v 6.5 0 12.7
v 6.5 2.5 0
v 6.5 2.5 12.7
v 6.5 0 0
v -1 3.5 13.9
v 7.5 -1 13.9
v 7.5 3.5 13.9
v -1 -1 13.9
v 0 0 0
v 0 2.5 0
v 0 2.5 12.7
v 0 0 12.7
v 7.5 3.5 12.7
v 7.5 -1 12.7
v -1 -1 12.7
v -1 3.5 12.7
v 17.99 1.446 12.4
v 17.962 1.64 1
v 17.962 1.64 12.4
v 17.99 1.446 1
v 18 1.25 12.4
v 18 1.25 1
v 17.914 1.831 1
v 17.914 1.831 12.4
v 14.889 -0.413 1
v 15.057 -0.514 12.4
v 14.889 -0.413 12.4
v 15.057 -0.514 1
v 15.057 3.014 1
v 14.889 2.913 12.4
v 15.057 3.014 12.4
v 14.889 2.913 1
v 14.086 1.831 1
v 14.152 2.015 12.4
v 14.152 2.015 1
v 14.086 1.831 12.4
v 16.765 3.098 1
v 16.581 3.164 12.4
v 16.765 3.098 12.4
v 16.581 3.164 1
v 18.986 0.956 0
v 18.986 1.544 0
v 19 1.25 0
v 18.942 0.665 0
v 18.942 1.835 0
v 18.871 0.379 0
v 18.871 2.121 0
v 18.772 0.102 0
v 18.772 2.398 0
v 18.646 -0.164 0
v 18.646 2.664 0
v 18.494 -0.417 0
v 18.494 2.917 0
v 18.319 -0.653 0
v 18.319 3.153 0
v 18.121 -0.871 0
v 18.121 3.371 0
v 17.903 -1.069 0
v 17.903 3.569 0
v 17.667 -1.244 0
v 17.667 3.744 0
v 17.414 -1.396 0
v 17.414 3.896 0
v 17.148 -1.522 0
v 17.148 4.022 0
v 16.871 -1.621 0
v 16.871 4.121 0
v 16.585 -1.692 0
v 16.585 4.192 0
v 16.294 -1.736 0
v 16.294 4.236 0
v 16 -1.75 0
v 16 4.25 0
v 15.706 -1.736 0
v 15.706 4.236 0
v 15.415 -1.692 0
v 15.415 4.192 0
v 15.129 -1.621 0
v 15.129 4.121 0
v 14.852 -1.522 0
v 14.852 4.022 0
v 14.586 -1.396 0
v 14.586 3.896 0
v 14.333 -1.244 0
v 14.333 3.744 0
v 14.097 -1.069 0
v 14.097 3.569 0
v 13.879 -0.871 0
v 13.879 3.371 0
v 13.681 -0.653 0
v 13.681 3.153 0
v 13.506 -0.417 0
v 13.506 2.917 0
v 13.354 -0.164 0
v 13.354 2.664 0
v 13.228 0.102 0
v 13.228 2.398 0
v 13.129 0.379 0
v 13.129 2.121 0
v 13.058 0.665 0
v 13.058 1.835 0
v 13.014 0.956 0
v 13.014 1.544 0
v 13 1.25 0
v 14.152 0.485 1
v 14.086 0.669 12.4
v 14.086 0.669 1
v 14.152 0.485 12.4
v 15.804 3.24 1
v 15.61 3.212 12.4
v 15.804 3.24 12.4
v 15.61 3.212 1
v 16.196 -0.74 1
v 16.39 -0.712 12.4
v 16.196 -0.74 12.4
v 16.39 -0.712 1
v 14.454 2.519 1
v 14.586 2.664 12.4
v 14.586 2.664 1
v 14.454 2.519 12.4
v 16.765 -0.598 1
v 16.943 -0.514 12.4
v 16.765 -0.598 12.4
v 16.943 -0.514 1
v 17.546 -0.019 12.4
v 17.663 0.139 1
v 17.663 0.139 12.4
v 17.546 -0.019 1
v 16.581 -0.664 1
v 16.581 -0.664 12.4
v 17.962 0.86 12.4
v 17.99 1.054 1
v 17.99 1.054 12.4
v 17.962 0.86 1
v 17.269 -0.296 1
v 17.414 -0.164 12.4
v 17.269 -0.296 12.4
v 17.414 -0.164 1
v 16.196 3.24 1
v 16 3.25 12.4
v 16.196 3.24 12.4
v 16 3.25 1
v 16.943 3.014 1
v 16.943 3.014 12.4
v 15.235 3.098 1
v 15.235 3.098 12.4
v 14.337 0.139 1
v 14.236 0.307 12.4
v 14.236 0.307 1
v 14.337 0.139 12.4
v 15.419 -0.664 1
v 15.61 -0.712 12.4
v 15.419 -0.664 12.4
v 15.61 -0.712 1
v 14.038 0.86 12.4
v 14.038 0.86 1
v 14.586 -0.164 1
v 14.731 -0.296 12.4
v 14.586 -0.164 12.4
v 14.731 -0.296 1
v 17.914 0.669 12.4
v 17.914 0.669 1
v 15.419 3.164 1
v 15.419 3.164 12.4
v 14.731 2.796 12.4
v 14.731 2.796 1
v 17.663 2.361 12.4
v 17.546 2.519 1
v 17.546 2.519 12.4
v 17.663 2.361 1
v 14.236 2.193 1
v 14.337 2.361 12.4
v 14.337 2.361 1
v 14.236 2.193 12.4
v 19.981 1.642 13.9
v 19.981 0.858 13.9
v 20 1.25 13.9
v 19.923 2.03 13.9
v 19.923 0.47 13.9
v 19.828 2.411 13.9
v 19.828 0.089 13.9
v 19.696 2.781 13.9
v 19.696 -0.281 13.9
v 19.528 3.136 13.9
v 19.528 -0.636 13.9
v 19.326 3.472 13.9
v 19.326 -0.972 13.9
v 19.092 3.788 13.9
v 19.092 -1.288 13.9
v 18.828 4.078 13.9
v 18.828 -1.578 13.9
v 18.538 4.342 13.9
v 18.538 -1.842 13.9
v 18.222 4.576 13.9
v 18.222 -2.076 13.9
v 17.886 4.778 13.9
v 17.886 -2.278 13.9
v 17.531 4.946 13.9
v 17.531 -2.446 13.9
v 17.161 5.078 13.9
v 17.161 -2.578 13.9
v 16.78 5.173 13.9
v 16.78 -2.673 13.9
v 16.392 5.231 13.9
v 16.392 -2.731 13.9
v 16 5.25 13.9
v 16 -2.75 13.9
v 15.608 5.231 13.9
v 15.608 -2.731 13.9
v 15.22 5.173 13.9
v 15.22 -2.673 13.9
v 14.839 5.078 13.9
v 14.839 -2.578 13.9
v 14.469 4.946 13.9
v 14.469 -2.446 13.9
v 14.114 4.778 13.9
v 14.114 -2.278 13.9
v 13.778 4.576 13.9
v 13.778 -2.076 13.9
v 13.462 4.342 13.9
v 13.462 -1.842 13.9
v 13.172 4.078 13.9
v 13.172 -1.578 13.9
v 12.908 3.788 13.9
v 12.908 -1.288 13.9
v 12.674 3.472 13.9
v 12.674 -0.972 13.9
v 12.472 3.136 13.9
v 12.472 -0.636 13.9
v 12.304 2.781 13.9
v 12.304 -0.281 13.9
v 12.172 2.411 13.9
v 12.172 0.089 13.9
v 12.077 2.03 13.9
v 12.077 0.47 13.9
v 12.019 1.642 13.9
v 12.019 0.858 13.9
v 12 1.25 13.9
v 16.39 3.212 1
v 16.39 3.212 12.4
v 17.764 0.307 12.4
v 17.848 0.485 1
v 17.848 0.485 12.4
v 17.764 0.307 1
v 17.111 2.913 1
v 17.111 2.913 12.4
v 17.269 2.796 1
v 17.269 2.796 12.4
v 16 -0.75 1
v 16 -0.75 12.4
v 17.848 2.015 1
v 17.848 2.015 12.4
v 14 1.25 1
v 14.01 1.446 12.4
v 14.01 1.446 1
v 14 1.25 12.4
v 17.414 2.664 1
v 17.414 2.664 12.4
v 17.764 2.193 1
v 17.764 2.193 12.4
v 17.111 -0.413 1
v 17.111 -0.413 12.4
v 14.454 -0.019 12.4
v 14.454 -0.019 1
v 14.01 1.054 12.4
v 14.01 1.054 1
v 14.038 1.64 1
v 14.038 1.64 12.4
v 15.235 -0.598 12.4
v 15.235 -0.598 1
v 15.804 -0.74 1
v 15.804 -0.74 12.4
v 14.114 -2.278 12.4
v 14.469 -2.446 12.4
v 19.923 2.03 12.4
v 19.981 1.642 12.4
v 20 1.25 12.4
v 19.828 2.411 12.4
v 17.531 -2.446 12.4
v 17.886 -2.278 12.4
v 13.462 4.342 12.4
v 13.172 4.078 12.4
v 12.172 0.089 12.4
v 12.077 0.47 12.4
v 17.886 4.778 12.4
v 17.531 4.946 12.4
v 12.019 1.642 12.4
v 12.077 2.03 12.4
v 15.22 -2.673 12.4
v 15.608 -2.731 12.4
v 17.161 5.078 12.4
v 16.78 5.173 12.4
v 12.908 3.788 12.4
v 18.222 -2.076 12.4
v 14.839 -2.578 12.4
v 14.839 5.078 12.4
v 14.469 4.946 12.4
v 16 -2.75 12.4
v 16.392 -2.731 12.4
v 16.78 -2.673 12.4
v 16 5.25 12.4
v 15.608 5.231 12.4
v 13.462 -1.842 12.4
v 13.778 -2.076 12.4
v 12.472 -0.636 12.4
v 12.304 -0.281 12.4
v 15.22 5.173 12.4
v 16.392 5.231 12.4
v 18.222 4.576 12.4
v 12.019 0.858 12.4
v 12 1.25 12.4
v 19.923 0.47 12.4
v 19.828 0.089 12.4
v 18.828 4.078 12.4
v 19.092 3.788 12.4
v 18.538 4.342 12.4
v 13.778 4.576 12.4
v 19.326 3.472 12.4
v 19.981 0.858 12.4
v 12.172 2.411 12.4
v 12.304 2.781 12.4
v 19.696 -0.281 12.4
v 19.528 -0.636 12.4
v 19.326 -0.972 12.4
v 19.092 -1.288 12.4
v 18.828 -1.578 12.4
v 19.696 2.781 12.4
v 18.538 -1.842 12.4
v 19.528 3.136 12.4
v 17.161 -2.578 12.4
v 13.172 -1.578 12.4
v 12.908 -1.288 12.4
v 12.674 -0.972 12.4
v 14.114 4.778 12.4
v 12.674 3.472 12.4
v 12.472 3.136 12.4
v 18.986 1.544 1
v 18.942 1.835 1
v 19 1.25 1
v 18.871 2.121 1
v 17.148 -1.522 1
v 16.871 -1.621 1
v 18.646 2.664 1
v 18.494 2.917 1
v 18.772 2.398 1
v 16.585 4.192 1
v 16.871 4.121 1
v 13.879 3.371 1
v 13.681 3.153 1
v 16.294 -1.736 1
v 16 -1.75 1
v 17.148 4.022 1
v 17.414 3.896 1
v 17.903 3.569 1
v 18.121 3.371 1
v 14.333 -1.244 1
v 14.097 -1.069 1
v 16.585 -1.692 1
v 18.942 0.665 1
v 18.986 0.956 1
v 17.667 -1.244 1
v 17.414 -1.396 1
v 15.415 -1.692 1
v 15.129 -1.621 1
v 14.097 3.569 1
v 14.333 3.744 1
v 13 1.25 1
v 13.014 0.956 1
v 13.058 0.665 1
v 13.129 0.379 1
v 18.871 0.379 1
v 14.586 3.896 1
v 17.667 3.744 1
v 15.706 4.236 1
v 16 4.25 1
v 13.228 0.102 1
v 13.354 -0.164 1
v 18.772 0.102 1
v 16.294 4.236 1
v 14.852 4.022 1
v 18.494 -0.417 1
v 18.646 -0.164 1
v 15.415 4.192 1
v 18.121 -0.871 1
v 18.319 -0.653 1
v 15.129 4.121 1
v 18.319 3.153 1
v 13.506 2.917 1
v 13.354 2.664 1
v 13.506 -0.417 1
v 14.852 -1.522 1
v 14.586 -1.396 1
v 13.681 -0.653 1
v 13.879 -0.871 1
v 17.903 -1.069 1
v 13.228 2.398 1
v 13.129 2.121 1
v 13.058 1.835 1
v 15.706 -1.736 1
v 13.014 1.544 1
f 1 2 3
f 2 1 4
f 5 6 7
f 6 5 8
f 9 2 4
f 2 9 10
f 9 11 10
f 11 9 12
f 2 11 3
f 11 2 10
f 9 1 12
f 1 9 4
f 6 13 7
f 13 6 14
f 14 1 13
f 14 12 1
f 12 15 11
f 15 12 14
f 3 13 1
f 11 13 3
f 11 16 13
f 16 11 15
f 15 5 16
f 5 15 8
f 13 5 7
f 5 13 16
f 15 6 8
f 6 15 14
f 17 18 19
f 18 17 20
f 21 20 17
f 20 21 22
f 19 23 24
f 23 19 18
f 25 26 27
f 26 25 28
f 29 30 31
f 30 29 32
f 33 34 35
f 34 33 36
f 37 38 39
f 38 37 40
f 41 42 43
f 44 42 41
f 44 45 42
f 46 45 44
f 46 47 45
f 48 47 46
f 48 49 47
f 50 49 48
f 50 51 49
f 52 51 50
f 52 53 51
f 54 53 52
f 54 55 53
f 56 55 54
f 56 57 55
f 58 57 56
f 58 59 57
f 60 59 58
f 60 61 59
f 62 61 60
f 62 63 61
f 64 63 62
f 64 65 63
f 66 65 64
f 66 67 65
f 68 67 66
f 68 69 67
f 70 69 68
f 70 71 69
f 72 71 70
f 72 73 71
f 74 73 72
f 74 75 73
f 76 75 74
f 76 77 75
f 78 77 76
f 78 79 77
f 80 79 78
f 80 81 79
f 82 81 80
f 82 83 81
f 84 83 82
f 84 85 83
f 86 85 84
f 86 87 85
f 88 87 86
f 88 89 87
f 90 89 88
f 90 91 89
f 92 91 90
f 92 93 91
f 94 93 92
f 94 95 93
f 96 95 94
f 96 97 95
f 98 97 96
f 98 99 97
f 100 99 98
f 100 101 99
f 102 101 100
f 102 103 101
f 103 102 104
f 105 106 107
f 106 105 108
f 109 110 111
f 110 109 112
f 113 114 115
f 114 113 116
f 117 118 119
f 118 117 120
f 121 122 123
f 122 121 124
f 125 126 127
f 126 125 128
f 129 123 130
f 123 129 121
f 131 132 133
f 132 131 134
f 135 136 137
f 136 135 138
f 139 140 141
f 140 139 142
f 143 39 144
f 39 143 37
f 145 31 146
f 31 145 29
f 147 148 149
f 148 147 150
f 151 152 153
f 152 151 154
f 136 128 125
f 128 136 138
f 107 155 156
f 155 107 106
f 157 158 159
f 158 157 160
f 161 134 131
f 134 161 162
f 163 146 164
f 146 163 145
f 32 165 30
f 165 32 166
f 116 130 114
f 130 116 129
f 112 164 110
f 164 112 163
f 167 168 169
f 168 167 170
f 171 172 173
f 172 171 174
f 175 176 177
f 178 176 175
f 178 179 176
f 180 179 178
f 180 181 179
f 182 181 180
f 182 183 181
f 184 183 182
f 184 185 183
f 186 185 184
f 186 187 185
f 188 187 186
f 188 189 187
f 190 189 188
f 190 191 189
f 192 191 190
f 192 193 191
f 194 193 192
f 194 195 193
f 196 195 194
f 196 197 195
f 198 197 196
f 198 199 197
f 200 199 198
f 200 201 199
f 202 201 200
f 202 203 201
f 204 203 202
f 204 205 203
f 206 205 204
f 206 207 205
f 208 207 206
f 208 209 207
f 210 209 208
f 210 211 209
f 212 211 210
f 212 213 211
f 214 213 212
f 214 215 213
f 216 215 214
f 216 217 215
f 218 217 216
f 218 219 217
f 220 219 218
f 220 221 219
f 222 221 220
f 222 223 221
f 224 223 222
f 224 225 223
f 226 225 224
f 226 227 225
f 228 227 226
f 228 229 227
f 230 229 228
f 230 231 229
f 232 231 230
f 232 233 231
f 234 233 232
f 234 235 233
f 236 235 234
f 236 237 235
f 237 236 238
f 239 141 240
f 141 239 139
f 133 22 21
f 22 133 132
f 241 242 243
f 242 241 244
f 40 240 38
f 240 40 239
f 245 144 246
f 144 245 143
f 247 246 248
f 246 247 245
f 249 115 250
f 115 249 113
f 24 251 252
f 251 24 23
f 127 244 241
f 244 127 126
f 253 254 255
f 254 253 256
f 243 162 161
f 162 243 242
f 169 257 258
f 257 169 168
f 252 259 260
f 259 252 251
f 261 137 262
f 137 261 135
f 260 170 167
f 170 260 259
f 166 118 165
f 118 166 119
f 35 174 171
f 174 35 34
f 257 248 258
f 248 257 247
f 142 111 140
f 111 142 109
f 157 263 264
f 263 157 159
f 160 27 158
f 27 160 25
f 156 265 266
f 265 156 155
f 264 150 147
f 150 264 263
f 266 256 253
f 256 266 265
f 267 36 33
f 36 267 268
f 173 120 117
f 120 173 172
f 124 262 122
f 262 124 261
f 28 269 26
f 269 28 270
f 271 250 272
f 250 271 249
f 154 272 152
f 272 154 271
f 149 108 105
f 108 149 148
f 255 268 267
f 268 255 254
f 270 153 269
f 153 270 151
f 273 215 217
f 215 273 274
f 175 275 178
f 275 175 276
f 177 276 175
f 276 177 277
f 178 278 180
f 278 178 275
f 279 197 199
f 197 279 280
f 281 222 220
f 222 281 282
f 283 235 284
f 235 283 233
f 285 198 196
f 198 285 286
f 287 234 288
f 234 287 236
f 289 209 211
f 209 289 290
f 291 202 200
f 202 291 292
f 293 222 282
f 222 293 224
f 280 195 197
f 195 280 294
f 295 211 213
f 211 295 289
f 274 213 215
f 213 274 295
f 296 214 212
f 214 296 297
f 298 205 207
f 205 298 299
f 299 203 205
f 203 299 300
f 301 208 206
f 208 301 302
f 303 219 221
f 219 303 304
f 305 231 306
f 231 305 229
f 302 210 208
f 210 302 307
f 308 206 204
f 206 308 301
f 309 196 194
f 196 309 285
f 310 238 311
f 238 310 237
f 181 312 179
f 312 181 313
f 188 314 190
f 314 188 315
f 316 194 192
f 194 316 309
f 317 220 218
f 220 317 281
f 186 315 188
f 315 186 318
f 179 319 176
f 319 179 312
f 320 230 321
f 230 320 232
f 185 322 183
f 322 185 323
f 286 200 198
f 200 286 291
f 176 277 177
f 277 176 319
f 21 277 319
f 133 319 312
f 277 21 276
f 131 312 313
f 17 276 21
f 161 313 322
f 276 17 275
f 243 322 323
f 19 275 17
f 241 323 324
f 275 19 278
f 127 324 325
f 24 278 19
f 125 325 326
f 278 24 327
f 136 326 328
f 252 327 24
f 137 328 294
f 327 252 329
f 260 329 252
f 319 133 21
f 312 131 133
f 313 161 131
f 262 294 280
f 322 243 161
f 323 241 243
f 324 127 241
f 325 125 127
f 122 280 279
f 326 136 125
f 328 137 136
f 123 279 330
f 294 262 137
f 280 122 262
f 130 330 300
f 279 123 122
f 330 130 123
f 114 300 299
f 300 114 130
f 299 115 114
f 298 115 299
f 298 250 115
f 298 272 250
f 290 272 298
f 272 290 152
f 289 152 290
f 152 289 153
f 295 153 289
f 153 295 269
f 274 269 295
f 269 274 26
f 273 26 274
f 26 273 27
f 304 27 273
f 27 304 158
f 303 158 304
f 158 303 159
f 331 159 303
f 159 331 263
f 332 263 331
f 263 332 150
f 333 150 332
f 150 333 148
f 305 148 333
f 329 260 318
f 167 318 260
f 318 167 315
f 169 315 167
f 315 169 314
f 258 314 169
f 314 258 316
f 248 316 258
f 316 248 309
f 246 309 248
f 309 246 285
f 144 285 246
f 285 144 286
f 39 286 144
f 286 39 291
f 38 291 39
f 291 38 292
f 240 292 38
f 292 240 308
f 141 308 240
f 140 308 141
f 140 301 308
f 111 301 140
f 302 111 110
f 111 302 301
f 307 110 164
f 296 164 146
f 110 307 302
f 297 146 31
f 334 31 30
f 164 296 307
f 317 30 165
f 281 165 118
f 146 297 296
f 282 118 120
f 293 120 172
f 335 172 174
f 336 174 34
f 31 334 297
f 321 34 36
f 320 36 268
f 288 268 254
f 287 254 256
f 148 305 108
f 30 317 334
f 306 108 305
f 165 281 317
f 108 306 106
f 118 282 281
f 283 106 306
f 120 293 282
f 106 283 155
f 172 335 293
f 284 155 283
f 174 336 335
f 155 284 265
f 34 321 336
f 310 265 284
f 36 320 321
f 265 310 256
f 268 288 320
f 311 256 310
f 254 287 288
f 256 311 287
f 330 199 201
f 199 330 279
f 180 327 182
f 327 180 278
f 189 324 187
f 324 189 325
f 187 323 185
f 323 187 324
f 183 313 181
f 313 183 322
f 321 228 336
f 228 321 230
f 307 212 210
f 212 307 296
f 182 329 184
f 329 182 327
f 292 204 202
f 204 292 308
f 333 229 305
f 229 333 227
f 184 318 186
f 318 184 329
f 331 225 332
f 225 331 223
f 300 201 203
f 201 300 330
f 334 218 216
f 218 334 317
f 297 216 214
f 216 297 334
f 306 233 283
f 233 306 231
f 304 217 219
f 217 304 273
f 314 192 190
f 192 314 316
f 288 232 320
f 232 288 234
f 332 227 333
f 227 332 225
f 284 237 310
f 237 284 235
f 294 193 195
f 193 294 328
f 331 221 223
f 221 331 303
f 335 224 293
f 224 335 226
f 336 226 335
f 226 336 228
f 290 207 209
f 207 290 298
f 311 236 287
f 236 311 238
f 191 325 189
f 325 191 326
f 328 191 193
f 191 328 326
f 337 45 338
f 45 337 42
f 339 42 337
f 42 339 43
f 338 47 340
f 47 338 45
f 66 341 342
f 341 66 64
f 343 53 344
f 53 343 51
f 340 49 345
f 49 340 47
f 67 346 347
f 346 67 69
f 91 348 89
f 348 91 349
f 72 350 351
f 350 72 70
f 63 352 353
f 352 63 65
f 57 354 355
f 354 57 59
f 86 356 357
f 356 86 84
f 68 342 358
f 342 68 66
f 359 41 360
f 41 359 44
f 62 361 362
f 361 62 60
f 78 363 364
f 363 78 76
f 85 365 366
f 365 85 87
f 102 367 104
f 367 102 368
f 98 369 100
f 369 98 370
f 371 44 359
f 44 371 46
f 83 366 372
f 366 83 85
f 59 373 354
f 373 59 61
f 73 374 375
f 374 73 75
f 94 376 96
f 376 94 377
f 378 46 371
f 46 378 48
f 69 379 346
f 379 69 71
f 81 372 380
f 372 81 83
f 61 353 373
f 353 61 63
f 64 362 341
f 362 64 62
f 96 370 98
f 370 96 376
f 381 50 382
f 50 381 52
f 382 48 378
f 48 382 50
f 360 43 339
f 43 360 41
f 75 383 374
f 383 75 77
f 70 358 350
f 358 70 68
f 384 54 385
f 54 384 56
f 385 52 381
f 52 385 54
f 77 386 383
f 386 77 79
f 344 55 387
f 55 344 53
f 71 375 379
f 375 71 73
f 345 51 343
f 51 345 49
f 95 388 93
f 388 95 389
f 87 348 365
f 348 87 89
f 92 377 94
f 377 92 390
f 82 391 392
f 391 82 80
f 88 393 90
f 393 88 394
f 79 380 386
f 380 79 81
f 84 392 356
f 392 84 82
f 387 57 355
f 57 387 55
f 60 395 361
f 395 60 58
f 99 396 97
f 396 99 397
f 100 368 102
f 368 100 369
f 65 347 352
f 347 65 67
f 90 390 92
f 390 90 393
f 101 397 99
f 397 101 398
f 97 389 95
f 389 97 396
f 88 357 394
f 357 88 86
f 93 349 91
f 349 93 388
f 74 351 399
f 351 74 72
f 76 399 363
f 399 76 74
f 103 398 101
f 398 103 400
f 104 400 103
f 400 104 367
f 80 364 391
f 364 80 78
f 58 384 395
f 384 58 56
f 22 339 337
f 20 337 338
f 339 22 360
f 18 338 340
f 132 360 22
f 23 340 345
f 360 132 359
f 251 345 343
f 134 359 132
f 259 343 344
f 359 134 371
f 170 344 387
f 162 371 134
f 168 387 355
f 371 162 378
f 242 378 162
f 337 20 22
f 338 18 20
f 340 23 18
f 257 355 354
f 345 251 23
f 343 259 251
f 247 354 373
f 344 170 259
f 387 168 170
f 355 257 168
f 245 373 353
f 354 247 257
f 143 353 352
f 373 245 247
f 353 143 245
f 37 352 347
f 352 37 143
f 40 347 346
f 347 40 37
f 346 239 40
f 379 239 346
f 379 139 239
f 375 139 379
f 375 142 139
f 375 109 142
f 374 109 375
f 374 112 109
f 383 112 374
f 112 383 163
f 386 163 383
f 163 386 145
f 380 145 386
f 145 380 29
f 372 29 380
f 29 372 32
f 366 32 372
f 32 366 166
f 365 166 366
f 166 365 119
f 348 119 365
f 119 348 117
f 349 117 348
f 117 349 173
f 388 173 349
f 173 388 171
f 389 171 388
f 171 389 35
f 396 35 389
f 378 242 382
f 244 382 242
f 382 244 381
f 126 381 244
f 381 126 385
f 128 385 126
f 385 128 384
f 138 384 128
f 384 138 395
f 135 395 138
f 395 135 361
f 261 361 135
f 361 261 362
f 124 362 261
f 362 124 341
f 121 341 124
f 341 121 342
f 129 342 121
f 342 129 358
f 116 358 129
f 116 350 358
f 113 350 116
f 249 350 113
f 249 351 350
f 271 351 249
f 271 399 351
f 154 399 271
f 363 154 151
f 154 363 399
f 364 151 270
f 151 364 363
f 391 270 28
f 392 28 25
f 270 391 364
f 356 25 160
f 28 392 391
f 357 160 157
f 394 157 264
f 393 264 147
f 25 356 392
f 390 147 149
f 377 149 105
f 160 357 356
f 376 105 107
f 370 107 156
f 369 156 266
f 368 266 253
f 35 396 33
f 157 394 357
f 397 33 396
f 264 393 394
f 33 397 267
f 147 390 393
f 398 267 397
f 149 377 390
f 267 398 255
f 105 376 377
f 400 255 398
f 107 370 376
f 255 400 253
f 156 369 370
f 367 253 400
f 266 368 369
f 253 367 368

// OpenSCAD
// file: params.scad
// ANC helmet - shared mechanical parameters (mm).
// MEASURE YOUR EARMUFF and edit the "cup" block; everything else follows.

// ---- helmet-mount earmuff cup (inside, after removing the stock foam insert) ----
cup_a        = 72;    // inner long axis (vertical when worn)
cup_b        = 62;    // inner short axis
cup_depth    = 32;    // inner depth, rim to back wall
cup_wall     = 2.5;   // shell thickness where the outside mic sits

// ---- boards (must match hardware/gen/layouts.py; `python3 check_fit.py` verifies) ----
main_w = 60;  main_h = 50;  main_r = 14;
main_holes = [[7.2, 8.8], [52.8, 42.8], [6.8, 43.2]];  // from the board's top-left corner
sat_w  = 34;  sat_h  = 26;  sat_r  = 5;
sat_holes  = [[9.5, 3.5], [30, 22]];
mic_w  = 11;  mic_h  = 13.2;
mic_port   = [6.18, 3.6];                           // sound hole on the mic board (PCB underside)
pcb_t  = 1.6;

// ---- parts that live in the cups ----
driver_d      = 40.2;   // 40 mm headphone driver
driver_depth  = 6.0;
batt          = [50, 34, 10.5];   // 103450 LiPo pouch, 2000 mAh (with protection PCB)
m2_clear      = 2.3;
m2_insert_d   = 3.2;    // heat-set insert hole
standoff_h    = 4.0;

$fn = 64;

module rounded_rect(w, h, r, t) {
    linear_extrude(t) offset(r) offset(-r) square([w, h]);
}

module ellipse(a, b, t) { linear_extrude(t) scale([a / 2, b / 2]) circle(1); }
// main file
// Status light pipe + button plunger through the cup shell (main board, bottom edge).
// Print the light pipe in clear PETG (or use a 3 mm clear acrylic rod);
// the plunger in TPU so it seals against the shell.
include <params.scad>

reach = cup_depth - batt[2] - standoff_h - pcb_t - 2;   // board surface -> shell outside

module light_pipe() {
    // three LEDs sit 2 mm apart at the board edge; one 6 x 2.5 mm bar collects all three
    cube([6.5, 2.5, reach]);
    translate([-1, -1, reach - 1.2]) cube([8.5, 4.5, 1.2]);   // flange on the outside
}

module button_plunger() {
    cylinder(d = 4, h = reach);
    translate([0, 0, reach - 1.5]) cylinder(d = 8, h = 1.5);  // cap
    cylinder(d = 6, h = 1.0);                                 // retaining collar inside
}

light_pipe();
translate([16, 1.25, 0]) button_plunger();
